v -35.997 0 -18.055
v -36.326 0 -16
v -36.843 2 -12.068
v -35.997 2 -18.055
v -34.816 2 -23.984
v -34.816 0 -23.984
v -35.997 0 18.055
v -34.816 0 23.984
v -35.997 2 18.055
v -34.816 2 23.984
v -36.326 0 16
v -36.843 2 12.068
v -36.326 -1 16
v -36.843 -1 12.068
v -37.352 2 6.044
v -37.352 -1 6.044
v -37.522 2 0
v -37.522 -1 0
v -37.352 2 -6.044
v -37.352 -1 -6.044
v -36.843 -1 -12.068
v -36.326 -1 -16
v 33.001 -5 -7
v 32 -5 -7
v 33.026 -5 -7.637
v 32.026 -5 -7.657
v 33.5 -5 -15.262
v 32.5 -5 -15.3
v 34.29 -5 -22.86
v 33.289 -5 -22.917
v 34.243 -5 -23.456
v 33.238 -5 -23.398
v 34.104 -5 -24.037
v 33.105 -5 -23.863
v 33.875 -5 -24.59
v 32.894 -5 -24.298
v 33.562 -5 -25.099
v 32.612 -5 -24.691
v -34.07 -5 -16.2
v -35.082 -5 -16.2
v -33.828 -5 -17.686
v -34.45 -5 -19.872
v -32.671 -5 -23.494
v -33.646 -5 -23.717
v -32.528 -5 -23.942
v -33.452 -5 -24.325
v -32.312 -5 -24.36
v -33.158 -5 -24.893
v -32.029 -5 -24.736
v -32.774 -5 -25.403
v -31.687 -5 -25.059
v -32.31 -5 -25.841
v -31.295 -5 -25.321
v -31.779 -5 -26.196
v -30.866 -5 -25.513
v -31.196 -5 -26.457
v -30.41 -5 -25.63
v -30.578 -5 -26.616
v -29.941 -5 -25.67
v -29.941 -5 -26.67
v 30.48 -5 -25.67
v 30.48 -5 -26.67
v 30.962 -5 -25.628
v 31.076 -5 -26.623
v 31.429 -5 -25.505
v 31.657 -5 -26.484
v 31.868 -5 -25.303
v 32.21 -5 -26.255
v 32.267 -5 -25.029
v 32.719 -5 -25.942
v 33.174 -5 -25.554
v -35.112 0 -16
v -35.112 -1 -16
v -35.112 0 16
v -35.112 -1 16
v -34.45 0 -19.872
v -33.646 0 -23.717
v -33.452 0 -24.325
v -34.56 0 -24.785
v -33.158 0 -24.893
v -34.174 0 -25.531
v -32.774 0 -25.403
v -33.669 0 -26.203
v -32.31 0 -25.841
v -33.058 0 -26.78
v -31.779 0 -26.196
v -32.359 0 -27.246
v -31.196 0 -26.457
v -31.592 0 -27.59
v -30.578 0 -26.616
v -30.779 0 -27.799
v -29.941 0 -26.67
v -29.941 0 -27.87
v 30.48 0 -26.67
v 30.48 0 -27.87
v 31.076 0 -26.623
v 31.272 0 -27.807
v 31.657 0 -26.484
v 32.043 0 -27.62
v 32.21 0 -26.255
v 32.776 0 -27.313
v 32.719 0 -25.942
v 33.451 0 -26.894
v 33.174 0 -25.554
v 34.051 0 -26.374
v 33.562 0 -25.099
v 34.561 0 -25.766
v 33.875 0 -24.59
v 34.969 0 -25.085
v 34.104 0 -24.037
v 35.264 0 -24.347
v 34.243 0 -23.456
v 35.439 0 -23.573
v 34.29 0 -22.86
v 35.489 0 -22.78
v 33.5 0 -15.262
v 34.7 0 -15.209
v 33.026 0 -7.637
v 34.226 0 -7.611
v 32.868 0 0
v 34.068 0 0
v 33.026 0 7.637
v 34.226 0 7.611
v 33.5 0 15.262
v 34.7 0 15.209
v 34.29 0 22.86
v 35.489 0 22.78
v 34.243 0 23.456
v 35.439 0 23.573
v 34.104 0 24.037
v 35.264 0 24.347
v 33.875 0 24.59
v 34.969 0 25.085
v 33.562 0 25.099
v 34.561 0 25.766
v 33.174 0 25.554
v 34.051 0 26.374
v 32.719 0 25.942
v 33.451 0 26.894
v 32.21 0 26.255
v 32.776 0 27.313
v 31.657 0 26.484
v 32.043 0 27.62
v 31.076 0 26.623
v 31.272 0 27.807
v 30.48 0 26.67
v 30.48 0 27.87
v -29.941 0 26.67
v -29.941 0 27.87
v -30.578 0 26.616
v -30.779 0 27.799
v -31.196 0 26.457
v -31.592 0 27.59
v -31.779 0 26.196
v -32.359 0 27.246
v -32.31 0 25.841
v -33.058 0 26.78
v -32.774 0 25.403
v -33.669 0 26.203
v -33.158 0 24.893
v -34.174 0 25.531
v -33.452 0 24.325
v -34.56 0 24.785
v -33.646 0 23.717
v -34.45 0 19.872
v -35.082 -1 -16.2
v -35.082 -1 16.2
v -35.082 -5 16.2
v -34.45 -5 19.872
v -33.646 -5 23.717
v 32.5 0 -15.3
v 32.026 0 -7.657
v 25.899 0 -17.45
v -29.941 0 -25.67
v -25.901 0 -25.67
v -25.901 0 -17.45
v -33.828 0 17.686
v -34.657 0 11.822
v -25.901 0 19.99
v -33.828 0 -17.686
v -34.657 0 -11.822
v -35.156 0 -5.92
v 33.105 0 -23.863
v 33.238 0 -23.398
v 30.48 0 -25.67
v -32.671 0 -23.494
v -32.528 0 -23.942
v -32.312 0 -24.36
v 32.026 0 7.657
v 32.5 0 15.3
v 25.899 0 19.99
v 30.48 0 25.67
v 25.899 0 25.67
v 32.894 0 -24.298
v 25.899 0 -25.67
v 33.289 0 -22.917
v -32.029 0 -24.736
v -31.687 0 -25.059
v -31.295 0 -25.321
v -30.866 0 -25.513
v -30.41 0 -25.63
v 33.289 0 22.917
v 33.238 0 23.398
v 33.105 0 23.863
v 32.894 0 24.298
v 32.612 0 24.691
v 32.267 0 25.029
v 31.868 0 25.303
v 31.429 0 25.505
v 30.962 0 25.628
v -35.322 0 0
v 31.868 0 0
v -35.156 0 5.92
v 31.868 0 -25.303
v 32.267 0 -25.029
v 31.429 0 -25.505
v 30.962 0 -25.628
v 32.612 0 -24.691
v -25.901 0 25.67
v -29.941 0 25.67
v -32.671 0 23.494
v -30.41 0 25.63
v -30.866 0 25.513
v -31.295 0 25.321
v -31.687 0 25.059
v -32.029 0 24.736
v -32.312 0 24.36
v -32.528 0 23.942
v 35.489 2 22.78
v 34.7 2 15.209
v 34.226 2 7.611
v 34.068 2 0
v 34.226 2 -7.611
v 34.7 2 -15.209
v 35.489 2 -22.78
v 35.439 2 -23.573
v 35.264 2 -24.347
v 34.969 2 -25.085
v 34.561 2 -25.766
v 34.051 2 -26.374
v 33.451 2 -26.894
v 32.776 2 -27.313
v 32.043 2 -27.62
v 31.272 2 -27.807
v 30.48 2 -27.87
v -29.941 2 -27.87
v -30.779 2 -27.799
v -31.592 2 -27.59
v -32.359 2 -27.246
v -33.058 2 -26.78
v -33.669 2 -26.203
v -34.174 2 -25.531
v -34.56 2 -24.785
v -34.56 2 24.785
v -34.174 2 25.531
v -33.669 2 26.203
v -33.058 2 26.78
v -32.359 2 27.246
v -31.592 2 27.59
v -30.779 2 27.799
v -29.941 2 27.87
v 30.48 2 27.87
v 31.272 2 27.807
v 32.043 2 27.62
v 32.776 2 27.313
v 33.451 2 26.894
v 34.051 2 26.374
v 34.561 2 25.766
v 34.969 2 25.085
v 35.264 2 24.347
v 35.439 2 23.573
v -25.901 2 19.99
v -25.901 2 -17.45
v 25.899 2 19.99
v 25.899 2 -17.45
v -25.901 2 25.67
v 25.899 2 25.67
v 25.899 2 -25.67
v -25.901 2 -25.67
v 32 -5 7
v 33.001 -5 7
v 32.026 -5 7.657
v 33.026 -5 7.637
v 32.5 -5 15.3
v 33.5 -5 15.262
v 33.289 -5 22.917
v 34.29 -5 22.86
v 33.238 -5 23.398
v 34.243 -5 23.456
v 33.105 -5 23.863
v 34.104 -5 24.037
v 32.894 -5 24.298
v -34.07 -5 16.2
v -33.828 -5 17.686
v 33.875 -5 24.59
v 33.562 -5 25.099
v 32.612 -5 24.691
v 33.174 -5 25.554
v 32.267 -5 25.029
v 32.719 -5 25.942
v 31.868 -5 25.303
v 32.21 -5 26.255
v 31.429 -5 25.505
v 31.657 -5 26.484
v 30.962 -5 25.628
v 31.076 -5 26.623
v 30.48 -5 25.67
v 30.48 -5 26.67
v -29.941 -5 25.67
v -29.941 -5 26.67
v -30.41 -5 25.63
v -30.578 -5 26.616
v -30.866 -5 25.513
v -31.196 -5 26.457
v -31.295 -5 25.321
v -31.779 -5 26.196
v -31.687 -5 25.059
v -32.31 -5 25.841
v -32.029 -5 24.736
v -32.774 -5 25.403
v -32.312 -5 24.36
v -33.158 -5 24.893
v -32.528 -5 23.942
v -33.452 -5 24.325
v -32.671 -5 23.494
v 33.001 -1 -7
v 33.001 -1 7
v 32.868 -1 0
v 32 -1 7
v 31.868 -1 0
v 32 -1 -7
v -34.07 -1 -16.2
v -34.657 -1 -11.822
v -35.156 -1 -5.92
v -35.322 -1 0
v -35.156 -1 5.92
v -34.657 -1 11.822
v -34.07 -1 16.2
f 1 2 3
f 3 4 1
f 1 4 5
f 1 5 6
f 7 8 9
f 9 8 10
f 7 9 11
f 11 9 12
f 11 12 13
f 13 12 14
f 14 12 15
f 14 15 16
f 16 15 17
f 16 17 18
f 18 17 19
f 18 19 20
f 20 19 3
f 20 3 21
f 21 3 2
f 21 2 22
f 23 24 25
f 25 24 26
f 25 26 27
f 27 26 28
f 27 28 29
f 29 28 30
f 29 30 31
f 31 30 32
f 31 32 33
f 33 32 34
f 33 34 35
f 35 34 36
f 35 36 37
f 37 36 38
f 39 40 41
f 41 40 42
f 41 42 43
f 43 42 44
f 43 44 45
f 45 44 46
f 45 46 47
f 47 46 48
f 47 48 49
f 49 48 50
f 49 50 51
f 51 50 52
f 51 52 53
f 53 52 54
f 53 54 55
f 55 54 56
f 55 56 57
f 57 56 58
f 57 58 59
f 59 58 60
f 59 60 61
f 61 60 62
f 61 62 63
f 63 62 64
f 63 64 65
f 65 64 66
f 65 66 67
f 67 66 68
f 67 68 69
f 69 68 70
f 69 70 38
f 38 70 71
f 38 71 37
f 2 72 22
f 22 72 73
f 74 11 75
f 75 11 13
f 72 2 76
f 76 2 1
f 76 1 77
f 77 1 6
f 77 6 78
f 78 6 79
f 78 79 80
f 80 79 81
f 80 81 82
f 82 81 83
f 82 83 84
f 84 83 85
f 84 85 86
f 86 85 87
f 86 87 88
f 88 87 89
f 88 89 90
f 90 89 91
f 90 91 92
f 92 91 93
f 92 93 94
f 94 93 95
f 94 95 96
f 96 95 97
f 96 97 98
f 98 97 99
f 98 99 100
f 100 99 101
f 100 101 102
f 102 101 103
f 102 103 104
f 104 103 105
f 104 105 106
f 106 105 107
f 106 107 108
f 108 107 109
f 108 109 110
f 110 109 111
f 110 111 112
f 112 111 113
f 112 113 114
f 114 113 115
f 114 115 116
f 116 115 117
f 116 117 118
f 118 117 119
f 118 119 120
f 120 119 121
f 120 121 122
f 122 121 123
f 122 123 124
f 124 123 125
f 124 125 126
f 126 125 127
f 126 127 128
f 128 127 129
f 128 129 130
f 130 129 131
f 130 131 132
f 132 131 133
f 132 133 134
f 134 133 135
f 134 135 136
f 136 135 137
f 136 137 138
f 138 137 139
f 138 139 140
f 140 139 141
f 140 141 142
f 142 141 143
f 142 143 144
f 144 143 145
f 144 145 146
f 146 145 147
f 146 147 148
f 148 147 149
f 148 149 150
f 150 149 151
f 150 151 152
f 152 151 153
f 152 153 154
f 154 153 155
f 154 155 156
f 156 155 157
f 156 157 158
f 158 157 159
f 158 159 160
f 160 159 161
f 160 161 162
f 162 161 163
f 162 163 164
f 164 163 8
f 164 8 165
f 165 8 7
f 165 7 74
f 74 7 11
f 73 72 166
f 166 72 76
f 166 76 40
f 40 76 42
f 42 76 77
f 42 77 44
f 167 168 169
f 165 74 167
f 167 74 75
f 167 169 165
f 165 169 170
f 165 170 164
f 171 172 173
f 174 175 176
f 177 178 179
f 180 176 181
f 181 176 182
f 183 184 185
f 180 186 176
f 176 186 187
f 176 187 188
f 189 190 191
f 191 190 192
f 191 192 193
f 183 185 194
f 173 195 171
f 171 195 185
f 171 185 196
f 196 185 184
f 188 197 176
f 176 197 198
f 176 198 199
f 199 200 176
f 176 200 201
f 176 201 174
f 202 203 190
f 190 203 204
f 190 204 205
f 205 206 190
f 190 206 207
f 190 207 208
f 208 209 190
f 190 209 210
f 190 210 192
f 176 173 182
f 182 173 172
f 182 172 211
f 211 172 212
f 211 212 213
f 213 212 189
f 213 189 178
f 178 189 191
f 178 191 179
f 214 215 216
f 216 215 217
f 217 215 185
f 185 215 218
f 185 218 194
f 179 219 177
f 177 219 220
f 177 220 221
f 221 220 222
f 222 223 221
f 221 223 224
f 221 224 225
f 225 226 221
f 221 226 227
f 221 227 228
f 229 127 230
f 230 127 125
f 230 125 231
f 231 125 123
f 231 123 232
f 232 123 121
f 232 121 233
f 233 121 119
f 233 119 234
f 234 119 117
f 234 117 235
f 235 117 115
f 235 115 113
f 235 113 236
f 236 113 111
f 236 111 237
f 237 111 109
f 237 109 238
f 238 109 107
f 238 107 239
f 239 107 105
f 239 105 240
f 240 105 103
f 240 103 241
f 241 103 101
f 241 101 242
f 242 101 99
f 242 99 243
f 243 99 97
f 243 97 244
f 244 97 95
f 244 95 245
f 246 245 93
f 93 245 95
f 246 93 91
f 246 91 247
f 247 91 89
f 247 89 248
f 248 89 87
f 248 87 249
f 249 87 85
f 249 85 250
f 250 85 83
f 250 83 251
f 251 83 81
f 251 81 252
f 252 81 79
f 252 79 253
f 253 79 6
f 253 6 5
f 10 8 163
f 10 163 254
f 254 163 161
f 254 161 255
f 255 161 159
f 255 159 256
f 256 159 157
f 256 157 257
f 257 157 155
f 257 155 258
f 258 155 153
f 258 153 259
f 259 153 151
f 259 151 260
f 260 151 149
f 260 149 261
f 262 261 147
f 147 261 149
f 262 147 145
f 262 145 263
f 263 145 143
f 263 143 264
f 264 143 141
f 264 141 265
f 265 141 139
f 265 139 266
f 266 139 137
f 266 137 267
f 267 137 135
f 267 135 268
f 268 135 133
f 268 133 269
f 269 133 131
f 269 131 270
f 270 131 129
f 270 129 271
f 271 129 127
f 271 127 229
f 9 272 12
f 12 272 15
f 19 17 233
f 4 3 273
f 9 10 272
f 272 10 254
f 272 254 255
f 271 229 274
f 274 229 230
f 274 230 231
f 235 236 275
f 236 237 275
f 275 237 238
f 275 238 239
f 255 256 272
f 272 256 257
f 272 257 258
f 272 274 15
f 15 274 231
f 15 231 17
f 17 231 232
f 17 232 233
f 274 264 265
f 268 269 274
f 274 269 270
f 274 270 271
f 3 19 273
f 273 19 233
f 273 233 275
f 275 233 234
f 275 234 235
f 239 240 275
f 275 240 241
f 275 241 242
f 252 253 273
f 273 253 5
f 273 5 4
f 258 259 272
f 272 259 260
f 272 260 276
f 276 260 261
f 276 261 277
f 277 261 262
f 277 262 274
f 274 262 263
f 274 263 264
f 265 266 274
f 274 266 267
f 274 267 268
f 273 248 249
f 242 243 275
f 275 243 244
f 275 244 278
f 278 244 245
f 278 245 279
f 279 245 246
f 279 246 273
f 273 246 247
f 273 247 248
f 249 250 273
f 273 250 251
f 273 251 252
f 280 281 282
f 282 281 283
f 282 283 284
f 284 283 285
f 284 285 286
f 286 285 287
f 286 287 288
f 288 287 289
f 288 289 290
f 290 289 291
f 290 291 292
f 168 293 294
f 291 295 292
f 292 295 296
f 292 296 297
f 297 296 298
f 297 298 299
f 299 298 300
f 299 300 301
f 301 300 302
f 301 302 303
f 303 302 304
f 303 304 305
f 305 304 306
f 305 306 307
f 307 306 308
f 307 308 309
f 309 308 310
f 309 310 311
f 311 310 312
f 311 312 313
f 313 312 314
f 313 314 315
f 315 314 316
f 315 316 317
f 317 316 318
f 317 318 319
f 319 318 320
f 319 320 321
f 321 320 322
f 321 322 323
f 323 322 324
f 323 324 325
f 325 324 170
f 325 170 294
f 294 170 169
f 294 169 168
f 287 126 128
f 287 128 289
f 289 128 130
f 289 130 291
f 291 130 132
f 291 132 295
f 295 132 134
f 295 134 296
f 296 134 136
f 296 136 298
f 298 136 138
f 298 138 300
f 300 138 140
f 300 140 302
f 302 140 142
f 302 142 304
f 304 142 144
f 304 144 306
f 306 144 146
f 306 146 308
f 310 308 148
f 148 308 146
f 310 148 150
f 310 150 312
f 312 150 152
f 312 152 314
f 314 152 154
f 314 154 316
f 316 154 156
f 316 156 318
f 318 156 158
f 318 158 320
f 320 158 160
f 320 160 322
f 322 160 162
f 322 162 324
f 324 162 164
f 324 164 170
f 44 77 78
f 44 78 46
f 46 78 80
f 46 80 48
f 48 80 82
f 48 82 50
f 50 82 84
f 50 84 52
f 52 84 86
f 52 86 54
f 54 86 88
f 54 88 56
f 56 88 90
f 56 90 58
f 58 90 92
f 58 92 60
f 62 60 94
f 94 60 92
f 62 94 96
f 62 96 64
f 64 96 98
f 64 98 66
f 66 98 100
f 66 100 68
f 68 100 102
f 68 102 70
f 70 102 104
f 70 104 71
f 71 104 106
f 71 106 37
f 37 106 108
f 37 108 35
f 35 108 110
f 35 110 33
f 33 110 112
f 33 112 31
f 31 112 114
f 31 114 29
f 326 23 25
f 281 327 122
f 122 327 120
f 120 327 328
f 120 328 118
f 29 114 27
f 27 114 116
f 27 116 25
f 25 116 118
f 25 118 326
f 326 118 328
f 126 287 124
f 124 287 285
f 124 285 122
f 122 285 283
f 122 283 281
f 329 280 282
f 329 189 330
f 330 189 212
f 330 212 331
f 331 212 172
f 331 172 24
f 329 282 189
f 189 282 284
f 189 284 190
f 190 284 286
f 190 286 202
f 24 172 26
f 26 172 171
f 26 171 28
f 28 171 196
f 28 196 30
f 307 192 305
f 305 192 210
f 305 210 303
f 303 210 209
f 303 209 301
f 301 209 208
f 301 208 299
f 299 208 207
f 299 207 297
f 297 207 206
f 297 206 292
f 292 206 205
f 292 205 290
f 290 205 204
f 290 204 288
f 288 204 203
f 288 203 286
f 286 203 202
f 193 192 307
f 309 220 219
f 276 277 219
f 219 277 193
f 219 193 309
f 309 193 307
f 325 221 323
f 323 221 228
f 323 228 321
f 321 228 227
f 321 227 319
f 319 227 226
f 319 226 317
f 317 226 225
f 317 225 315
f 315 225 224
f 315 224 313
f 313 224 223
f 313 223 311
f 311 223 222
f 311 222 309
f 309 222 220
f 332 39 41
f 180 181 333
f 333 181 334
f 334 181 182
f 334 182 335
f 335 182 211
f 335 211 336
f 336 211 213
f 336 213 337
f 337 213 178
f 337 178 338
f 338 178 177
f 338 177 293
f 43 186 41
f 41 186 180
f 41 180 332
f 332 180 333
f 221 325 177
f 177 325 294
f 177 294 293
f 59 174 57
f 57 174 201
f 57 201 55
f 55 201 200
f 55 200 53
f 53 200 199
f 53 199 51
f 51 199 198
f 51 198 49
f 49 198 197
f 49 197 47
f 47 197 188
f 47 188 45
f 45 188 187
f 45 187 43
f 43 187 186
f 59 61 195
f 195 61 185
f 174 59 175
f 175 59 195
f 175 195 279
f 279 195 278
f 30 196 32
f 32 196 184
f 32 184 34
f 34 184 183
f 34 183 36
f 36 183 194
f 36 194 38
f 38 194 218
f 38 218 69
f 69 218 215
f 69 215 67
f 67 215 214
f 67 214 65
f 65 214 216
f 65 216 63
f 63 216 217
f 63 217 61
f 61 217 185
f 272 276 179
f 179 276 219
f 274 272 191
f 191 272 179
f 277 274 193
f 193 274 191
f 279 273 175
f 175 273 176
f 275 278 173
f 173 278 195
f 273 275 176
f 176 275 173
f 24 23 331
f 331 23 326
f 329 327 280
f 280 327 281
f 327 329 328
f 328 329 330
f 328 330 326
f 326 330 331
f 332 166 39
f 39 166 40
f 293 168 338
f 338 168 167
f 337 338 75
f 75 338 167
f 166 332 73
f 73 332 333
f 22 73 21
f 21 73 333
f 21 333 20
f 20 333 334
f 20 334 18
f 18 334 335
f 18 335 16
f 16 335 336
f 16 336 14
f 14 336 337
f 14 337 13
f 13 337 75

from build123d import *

# Parameters (mm, degrees)
BOSS_EXTRUDE1_DEPTH = 2
BOSS_EXTRUDE2_DEPTH = 5
SKETCH4_W           = 51.8
SKETCH4_H           = 8.22
SKETCH4_H_2         = 5.68
CUT_EXTRUDE1_DEPTH  = 2
BOSS_EXTRUDE3_DEPTH = 5
SKETCH8_W           = 5.977250124
SKETCH8_H           = 14
CUT_EXTRUDE3_DEPTH  = 4
SKETCH9_W           = 9.791789178
SKETCH9_H           = 32.4
CUT_EXTRUDE4_DEPTH  = 4


with BuildPart() as part:
    # Sketch2 → Boss-Extrude1 (new body)
    with BuildSketch(Plane(origin=(0, 0, 0), x_dir=(1, 0, 0), z_dir=(0, 1, 0))):
        with BuildLine():
            Line((-29.941284627, -27.87), (30.48, -27.87))
            ThreePointArc((30.48, -27.87), (34.050723427, -26.374261545), (35.489363684, -22.780153375))
            ThreePointArc((35.489363684, -22.780153375), (34.068, 0), (35.489363684, 22.780153375))
            ThreePointArc((35.489363684, 22.780153375), (34.050723427, 26.374261545), (30.48, 27.87))
            Line((30.48, 27.87), (-29.941284627, 27.87))
            ThreePointArc((-29.941284627, 27.87), (-33.058077828, 26.779680312), (-34.815550633, 23.984240056))
            ThreePointArc((-34.815550633, 23.984240056), (-37.522, 0), (-34.815550633, -23.984240056))
            ThreePointArc((-34.815550633, -23.984240056), (-33.058077828, -26.779680312), (-29.941284627, -27.87))
        make_face()
    extrude(amount=BOSS_EXTRUDE1_DEPTH)

    # Sketch3 → Boss-Extrude2 (add)
    with BuildSketch(Plane.XZ):
        with BuildLine():
            Line((-29.941284627, -26.67), (30.48, -26.67))
            ThreePointArc((30.48, -26.67), (33.174076836, -25.554076836), (34.29, -22.86))
            ThreePointArc((34.29, -22.86), (32.868, 0), (34.29, 22.86))
            ThreePointArc((34.29, 22.86), (33.174076836, 25.554076836), (30.48, 26.67))
            Line((30.48, 26.67), (-29.941284627, 26.67))
            ThreePointArc((-29.941284627, 26.67), (-32.31004746, 25.841357037), (-33.645726791, 23.716822443))
            ThreePointArc((-33.645726791, 23.716822443), (-36.322, 0), (-33.645726791, -23.716822443))
            ThreePointArc((-33.645726791, -23.716822443), (-32.31004746, -25.841357037), (-29.941284627, -26.67))
        make_face()
        with BuildLine():
            Line((30.48, 25.67), (-29.941284627, 25.67))
            ThreePointArc((-29.941284627, 25.67), (-31.686688819, 25.059420975), (-32.67087359, 23.493974431))
            ThreePointArc((-32.67087359, 23.493974431), (-35.322, 0), (-32.67087359, -23.493974431))
            ThreePointArc((-32.67087359, -23.493974431), (-31.686688819, -25.059420975), (-29.941284627, -25.67))
            Line((-29.941284627, -25.67), (30.48, -25.67))
            ThreePointArc((30.48, -25.67), (32.446567575, -24.867165158), (33.289413465, -22.917410657))
            ThreePointArc((33.289413465, -22.917410657), (31.868, 0), (33.289413465, 22.917410657))
            ThreePointArc((33.289413465, 22.917410657), (32.446567575, 24.867165158), (30.48, 25.67))
        make_face(mode=Mode.SUBTRACT)
    extrude(amount=BOSS_EXTRUDE2_DEPTH)

    # Sketch4 → Cut-Extrude1 (cut)
    with BuildSketch(Plane(origin=(0, 2, 0), x_dir=(1, 0, 0), z_dir=(0, 1, 0))):
        with Locations((-0.000636316, 21.56)):
            Rectangle(SKETCH4_W, SKETCH4_H)
        with Locations((-0.000636316, -22.83)):
            Rectangle(SKETCH4_W, SKETCH4_H_2)
    extrude(amount=-CUT_EXTRUDE1_DEPTH, mode=Mode.SUBTRACT)

    # Sketch6 → Boss-Extrude3 (add)
    with BuildSketch(Plane.XZ):
        with BuildLine():
            Line((-36.326051564, 16), (-34.100805436, 16))
            ThreePointArc((-34.100805436, 16), (-35.322, 0), (-34.100805436, -16))
            Line((-34.100805436, -16), (-36.326051564, -16))
            ThreePointArc((-36.326051564, -16), (-37.522, 0), (-36.326051564, 16))
        make_face()
    extrude(amount=BOSS_EXTRUDE3_DEPTH)

    # Sketch8 → Cut-Extrude3 (cut)
    with BuildSketch(Plane.XZ.offset(5)):
        with Locations((32.449466872, 0)):
            Rectangle(SKETCH8_W, SKETCH8_H)
    extrude(amount=-CUT_EXTRUDE3_DEPTH, mode=Mode.SUBTRACT)

    # Sketch9 → Cut-Extrude4 (cut)
    with BuildSketch(Plane(origin=(0, -5, 0), x_dir=(-1, 0, 0), z_dir=(0, -1, 0))):
        with Locations((35.349982691, 0)):
            Rectangle(SKETCH9_W, SKETCH9_H)
    extrude(amount=-CUT_EXTRUDE4_DEPTH, mode=Mode.SUBTRACT)


solid = part.part
